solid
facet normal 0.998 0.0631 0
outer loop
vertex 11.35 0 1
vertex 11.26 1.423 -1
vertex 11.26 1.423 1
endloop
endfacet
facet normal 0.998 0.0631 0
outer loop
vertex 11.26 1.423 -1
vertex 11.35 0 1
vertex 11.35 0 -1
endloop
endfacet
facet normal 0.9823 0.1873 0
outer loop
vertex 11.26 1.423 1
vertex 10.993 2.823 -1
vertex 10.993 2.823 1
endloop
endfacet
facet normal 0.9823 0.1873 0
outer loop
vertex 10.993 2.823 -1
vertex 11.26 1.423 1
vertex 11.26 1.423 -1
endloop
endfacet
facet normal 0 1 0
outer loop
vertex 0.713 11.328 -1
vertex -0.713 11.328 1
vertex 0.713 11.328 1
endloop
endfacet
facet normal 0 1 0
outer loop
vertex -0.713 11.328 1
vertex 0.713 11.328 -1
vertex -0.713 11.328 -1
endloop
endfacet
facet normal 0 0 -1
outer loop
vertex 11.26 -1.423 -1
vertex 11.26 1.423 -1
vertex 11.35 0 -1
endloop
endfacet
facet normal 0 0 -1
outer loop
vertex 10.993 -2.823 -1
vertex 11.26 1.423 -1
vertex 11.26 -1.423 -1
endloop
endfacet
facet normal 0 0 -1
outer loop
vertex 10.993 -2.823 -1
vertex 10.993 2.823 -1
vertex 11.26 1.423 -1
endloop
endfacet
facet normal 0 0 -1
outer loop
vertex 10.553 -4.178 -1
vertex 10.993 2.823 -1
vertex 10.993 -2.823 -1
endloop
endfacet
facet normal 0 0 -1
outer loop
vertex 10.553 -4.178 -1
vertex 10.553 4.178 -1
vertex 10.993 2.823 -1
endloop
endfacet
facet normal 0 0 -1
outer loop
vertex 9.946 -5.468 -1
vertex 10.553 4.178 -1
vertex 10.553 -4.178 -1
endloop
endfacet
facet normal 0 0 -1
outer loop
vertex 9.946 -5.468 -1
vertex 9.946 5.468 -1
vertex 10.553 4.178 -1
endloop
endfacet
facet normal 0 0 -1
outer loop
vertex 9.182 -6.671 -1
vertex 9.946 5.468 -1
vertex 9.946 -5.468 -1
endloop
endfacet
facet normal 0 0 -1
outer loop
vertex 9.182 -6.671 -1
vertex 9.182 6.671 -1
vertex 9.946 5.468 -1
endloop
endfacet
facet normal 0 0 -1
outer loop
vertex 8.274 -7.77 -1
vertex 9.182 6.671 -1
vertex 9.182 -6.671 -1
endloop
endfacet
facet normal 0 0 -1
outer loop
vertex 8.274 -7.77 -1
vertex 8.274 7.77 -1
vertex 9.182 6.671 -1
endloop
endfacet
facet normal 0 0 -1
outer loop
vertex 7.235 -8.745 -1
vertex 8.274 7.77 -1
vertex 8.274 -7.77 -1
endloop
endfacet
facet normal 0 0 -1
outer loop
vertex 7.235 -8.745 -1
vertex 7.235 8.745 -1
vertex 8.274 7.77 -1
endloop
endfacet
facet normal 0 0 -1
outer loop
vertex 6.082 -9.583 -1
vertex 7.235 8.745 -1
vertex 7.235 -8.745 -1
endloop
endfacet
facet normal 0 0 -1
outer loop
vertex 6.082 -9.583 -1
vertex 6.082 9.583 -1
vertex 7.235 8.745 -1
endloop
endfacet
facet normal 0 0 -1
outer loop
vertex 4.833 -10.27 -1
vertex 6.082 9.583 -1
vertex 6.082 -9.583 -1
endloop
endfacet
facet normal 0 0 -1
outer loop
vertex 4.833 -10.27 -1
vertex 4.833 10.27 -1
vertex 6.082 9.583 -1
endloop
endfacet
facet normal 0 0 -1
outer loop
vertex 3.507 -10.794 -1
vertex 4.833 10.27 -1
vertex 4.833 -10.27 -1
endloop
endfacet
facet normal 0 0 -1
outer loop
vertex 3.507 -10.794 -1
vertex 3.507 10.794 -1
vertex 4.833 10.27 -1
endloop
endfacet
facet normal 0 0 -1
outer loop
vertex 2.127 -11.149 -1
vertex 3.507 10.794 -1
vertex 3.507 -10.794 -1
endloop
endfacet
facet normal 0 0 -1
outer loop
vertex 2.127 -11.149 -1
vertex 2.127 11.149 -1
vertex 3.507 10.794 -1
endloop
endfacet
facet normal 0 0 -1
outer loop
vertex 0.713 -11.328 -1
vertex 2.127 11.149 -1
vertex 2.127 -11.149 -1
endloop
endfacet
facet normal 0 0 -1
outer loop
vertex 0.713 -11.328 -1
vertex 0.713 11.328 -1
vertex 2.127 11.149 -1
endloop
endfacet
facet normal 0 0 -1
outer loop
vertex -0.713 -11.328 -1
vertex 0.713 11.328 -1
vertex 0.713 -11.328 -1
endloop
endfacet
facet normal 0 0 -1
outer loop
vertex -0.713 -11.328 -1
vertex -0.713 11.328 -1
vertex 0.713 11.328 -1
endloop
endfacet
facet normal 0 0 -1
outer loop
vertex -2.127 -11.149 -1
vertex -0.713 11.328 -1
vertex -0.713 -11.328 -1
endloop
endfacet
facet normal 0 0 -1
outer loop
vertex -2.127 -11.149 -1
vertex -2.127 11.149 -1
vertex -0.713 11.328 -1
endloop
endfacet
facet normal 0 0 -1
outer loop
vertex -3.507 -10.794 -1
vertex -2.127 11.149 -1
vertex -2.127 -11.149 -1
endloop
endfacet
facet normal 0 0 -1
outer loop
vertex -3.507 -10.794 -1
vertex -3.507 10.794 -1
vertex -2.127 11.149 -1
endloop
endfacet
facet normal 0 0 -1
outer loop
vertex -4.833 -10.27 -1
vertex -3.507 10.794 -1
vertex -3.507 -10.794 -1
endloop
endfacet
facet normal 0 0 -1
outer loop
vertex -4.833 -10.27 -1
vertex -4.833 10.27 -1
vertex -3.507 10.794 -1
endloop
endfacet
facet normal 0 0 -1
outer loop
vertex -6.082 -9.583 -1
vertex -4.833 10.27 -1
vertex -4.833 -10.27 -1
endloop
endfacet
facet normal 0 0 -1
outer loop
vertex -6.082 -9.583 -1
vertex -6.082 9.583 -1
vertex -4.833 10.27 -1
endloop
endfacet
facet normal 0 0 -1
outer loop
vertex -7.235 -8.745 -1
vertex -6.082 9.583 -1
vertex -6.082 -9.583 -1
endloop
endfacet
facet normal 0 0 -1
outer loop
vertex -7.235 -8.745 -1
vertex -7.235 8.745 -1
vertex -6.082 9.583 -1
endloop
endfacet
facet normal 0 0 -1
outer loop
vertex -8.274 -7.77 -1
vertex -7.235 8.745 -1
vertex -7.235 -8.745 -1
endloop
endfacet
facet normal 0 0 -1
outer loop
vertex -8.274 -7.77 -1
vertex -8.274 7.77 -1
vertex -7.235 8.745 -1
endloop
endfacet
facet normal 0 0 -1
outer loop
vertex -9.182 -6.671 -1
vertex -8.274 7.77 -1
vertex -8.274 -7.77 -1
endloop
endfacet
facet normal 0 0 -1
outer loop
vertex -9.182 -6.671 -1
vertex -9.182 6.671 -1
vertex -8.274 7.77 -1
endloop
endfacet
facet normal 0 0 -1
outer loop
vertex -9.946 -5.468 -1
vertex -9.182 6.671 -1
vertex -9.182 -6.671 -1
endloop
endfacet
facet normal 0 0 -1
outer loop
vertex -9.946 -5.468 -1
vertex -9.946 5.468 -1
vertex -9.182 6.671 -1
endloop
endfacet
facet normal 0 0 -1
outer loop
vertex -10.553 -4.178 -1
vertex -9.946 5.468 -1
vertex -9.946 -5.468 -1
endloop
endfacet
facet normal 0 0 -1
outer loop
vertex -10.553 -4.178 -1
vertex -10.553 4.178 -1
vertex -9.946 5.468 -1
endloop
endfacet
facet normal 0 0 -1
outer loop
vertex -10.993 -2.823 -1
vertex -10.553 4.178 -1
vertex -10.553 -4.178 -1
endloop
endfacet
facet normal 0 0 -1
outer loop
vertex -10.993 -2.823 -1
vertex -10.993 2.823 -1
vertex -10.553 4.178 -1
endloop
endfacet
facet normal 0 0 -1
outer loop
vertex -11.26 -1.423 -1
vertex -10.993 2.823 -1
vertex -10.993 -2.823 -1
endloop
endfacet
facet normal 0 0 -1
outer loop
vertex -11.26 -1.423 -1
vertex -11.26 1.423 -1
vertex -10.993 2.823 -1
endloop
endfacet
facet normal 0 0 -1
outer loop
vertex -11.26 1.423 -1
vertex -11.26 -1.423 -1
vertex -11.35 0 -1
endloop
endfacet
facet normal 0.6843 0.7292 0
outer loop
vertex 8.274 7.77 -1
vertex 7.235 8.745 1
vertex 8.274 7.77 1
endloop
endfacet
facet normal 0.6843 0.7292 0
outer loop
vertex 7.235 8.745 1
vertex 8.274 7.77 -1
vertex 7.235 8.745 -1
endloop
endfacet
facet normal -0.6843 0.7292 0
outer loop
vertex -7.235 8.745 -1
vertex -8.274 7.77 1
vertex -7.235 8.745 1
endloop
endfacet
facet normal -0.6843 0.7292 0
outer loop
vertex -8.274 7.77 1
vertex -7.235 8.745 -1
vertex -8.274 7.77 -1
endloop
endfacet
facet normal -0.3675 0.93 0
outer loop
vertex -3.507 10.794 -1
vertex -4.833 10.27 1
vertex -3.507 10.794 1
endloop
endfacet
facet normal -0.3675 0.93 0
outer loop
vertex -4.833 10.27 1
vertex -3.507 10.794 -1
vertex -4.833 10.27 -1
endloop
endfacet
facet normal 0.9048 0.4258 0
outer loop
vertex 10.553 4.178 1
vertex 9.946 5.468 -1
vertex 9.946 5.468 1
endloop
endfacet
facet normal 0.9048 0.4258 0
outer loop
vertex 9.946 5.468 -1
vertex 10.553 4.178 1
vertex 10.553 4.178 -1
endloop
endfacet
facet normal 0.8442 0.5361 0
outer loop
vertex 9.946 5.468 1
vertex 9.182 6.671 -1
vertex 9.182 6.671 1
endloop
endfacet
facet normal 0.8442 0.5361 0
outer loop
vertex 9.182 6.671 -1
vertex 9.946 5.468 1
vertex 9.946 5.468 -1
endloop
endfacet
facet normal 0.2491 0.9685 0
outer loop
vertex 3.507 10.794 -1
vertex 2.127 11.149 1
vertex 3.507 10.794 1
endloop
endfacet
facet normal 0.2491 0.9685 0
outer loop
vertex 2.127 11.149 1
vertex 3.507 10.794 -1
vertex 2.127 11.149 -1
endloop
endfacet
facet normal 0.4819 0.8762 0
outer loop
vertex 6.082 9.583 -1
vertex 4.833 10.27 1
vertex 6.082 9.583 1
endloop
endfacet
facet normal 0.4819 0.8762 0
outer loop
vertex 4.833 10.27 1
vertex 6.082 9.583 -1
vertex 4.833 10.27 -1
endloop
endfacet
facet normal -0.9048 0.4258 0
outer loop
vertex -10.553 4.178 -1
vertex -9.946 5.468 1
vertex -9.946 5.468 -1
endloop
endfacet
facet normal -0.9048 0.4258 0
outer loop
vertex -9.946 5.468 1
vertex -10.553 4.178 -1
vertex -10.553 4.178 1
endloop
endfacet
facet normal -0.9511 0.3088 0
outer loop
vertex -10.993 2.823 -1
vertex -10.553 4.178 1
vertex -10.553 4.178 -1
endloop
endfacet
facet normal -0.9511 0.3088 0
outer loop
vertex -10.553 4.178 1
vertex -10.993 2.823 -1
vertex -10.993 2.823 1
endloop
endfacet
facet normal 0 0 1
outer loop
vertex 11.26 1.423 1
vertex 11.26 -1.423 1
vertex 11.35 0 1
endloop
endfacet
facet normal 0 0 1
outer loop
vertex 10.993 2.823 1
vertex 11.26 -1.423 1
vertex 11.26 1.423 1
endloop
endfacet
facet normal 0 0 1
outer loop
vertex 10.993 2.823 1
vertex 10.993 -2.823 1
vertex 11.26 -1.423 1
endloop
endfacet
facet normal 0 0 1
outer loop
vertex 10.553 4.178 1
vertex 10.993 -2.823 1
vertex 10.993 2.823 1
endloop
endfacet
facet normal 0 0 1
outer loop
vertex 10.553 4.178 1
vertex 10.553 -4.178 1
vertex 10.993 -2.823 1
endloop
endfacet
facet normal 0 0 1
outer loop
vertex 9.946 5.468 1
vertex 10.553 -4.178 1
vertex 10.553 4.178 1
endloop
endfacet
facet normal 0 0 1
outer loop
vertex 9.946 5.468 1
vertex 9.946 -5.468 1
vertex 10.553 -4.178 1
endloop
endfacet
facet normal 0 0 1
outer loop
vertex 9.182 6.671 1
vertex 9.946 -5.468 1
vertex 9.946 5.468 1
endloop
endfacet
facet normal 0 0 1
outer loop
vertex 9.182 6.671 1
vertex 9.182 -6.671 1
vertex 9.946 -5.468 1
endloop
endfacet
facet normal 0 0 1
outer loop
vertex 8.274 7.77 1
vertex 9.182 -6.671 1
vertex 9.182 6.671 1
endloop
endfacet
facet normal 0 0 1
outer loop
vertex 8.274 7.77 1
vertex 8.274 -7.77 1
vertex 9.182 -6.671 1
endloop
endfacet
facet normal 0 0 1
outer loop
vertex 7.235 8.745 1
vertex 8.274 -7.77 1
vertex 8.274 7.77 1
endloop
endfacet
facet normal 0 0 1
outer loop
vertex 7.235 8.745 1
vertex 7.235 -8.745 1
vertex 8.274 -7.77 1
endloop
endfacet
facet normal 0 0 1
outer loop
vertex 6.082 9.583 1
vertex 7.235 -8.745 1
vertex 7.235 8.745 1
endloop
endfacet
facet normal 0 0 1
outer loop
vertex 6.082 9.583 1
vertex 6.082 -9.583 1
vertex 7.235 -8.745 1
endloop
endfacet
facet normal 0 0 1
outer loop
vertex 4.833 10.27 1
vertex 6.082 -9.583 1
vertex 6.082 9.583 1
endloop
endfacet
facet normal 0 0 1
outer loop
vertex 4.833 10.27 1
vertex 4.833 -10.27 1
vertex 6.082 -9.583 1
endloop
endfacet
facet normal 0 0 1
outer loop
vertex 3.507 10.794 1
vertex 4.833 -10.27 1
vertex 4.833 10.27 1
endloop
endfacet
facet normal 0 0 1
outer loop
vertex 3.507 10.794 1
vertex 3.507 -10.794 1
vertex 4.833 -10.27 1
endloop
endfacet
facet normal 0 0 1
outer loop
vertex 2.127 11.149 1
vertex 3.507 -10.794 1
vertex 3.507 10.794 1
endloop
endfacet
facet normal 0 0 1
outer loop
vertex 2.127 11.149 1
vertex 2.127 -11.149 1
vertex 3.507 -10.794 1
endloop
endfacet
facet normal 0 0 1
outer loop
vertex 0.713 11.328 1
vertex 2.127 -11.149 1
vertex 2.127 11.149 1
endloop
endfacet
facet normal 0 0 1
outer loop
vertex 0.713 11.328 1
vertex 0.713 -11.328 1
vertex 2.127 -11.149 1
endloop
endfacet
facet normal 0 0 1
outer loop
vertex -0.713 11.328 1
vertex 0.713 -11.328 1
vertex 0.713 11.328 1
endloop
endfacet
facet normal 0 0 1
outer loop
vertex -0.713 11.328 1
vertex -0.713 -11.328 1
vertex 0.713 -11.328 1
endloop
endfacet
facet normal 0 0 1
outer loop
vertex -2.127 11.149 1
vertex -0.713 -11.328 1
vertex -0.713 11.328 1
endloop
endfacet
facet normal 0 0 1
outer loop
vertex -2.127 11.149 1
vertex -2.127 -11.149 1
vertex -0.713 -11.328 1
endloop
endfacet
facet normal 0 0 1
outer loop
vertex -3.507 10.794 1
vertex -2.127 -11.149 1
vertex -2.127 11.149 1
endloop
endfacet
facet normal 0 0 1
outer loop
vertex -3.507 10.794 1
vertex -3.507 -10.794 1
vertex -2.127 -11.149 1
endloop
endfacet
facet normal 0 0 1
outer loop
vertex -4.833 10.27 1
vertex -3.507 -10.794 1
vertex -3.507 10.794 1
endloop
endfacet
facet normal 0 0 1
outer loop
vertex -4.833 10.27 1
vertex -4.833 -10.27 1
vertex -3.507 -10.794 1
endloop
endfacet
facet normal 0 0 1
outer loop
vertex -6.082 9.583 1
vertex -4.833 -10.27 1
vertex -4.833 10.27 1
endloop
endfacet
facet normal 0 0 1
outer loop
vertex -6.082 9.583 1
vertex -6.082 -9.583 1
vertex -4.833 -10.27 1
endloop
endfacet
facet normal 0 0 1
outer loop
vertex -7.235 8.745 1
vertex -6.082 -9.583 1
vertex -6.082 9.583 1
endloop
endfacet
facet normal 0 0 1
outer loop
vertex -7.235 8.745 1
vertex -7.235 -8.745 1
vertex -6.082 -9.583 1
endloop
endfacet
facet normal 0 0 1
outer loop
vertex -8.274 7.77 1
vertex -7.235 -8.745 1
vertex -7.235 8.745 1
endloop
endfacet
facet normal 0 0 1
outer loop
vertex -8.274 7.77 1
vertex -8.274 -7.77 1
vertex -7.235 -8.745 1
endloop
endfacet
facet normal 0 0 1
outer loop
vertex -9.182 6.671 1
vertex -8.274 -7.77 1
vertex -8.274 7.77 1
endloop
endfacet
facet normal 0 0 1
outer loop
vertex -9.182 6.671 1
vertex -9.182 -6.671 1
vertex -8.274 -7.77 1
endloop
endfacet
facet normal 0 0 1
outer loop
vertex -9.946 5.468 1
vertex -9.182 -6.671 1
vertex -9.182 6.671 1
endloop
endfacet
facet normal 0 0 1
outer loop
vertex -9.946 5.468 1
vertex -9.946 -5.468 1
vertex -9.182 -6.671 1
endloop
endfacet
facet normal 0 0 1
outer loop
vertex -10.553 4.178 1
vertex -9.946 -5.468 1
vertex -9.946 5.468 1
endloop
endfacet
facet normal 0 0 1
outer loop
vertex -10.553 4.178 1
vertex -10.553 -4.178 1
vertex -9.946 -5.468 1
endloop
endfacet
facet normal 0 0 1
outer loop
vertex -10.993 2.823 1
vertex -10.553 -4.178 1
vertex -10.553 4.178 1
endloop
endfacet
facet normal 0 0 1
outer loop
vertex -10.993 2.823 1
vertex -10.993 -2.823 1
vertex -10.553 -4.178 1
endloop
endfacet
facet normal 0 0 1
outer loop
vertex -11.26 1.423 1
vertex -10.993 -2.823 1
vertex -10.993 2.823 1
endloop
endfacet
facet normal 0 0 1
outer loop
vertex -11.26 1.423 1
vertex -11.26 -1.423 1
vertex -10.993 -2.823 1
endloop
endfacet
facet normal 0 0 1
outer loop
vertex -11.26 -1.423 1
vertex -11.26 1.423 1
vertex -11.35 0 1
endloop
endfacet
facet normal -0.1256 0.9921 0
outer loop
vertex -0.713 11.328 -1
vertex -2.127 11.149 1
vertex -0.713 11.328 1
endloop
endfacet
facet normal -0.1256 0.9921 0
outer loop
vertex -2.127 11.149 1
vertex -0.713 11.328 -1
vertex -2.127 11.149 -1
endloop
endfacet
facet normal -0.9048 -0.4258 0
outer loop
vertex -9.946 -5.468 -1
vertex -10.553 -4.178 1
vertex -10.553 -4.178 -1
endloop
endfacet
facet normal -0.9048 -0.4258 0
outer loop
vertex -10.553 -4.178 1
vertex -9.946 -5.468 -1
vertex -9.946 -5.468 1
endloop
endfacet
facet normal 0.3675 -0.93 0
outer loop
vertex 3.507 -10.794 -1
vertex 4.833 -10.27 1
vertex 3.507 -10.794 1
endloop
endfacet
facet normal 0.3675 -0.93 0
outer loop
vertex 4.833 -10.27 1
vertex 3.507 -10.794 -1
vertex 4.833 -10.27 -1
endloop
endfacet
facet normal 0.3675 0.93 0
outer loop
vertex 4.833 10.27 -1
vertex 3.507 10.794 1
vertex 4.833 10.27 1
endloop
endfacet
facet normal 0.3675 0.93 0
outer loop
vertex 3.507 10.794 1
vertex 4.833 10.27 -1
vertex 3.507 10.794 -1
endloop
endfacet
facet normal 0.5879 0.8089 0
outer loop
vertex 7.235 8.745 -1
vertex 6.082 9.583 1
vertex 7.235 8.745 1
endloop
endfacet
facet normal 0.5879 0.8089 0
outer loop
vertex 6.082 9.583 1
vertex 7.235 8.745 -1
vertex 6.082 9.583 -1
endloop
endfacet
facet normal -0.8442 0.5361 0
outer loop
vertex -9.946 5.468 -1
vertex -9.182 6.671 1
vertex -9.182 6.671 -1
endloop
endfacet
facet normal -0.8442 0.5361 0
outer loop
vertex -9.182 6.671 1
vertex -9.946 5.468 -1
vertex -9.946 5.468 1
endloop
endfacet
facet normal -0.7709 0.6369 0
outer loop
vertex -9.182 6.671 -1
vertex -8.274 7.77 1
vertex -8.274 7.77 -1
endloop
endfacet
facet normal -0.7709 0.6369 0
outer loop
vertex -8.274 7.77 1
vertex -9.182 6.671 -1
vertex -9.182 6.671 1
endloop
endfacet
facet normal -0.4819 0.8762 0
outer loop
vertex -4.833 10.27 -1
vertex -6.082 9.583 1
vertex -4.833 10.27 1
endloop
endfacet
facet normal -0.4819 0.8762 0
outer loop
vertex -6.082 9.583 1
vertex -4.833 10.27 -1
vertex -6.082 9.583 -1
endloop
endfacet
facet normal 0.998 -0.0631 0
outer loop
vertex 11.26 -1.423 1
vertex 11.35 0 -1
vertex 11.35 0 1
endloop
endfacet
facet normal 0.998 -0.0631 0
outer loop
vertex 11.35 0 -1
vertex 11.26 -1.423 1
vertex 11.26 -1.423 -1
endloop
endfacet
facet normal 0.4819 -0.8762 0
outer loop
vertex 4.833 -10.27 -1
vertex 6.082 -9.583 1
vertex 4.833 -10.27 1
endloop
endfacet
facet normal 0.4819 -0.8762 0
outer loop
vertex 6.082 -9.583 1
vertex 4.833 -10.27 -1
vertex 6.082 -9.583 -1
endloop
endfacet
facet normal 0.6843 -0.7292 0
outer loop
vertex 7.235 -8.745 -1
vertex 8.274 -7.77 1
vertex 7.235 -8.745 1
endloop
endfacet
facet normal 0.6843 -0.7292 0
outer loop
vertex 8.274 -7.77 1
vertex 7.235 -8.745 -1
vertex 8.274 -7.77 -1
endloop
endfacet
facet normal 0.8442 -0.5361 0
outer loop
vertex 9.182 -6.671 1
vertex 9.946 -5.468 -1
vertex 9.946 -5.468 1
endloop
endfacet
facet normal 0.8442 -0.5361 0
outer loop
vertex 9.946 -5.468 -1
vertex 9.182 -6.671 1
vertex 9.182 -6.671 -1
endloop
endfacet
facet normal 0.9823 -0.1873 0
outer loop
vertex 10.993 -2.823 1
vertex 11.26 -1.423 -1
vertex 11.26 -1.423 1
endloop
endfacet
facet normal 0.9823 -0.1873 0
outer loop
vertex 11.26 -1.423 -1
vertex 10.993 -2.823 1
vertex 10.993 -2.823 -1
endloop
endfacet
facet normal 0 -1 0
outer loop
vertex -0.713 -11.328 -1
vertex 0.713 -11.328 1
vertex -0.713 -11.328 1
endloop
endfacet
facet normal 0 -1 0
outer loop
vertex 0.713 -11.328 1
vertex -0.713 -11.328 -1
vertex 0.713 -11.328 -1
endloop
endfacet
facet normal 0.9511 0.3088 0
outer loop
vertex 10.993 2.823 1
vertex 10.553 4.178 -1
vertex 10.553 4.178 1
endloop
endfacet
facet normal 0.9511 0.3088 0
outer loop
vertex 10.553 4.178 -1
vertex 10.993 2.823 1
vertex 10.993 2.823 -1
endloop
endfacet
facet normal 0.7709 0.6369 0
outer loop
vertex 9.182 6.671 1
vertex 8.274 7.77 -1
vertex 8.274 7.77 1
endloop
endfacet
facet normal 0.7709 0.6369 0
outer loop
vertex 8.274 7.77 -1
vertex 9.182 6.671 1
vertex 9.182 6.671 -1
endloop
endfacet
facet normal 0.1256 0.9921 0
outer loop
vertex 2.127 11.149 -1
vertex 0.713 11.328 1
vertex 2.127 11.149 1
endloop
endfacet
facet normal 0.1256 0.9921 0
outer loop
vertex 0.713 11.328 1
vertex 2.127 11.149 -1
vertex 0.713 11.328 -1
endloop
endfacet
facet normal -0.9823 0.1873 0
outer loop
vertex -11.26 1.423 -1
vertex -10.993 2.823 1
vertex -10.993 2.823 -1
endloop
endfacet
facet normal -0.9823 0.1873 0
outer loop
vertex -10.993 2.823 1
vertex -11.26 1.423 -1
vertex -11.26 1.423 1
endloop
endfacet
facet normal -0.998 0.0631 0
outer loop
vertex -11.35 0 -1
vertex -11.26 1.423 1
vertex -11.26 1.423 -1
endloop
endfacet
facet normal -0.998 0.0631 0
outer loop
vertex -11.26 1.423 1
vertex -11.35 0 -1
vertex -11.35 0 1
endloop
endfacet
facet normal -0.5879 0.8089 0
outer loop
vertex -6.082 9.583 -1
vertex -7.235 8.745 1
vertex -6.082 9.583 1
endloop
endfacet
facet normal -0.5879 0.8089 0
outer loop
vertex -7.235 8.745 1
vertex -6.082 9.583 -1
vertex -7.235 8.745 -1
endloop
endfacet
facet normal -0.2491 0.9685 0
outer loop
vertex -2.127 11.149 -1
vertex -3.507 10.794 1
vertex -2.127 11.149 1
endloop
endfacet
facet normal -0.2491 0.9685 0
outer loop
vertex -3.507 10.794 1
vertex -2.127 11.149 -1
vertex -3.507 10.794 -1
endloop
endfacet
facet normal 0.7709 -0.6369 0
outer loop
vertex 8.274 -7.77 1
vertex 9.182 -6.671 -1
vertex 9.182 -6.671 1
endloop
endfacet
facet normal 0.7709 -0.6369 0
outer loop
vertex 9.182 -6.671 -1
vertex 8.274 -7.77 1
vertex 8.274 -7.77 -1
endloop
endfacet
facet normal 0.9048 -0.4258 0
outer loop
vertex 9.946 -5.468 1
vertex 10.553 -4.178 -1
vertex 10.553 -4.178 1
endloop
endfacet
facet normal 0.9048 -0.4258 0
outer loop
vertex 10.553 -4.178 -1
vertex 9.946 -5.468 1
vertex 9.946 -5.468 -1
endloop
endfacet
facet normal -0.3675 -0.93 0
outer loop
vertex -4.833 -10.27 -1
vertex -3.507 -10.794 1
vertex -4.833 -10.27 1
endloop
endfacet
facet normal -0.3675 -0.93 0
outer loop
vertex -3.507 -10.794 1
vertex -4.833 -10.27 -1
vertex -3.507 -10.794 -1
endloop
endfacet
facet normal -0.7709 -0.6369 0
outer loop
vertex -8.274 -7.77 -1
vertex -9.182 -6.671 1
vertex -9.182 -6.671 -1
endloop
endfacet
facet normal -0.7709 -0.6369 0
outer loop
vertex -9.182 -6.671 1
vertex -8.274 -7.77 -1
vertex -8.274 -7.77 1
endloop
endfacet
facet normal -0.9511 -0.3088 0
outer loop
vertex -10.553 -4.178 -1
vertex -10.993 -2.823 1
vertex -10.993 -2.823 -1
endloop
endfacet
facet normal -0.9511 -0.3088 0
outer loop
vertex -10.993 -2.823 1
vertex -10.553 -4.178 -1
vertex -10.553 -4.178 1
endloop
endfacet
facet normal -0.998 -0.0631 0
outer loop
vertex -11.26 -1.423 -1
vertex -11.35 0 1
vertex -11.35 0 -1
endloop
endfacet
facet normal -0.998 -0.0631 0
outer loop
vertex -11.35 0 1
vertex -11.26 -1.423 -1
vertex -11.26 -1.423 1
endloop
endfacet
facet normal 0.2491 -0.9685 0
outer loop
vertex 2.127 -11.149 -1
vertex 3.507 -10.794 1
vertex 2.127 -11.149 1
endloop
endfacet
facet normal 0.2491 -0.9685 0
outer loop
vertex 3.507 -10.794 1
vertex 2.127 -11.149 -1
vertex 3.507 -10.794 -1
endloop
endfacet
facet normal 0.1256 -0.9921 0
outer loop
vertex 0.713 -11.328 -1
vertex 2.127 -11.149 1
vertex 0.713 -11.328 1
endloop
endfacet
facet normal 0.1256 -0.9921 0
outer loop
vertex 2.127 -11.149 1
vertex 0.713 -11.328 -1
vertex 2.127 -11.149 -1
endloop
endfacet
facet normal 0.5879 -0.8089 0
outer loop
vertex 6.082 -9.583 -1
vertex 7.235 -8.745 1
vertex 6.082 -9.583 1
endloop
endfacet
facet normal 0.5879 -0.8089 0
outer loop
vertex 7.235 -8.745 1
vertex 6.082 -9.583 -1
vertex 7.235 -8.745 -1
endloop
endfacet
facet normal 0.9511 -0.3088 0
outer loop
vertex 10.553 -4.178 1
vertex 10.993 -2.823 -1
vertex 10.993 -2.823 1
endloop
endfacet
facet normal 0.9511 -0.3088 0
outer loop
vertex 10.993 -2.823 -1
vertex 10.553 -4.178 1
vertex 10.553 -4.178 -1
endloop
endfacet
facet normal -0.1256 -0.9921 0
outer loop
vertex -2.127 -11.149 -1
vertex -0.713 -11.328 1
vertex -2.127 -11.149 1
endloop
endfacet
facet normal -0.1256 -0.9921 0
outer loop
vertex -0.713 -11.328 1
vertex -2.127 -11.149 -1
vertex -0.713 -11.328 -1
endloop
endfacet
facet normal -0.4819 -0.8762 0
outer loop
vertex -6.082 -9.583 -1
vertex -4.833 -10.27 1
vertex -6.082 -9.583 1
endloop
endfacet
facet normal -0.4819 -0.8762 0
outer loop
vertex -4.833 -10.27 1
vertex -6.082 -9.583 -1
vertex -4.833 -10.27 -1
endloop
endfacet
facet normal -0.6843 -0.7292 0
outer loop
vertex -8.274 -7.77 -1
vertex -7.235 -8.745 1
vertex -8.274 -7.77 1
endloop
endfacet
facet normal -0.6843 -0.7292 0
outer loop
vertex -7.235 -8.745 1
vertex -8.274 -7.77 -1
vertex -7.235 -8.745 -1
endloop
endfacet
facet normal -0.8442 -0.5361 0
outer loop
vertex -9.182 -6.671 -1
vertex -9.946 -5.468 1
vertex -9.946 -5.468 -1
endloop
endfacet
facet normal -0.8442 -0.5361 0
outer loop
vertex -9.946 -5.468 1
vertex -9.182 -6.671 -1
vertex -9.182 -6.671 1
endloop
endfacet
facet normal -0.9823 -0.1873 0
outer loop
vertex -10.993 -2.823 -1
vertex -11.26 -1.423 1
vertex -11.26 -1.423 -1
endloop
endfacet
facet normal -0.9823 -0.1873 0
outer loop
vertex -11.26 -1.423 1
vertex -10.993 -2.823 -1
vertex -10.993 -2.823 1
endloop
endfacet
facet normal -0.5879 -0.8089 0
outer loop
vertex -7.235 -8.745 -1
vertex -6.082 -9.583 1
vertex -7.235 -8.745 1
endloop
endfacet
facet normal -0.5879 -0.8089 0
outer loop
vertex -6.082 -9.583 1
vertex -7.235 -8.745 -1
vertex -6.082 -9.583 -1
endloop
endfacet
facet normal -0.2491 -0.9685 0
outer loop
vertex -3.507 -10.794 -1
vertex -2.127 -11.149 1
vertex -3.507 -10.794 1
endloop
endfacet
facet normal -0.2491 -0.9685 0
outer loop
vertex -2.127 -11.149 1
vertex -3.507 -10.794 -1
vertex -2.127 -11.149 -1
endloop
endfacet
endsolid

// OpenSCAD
$fn = 50;


difference() {
	union() {
		translate(v = [0, 0, -1.0000000000]) {
			cylinder(h = 2, r = 11.3500000000);
		}
	}
	union() {
		translate(v = [0, 0, -100.0000000000]) {
			cylinder(h = 200, r = 0);
		}
	}
}
